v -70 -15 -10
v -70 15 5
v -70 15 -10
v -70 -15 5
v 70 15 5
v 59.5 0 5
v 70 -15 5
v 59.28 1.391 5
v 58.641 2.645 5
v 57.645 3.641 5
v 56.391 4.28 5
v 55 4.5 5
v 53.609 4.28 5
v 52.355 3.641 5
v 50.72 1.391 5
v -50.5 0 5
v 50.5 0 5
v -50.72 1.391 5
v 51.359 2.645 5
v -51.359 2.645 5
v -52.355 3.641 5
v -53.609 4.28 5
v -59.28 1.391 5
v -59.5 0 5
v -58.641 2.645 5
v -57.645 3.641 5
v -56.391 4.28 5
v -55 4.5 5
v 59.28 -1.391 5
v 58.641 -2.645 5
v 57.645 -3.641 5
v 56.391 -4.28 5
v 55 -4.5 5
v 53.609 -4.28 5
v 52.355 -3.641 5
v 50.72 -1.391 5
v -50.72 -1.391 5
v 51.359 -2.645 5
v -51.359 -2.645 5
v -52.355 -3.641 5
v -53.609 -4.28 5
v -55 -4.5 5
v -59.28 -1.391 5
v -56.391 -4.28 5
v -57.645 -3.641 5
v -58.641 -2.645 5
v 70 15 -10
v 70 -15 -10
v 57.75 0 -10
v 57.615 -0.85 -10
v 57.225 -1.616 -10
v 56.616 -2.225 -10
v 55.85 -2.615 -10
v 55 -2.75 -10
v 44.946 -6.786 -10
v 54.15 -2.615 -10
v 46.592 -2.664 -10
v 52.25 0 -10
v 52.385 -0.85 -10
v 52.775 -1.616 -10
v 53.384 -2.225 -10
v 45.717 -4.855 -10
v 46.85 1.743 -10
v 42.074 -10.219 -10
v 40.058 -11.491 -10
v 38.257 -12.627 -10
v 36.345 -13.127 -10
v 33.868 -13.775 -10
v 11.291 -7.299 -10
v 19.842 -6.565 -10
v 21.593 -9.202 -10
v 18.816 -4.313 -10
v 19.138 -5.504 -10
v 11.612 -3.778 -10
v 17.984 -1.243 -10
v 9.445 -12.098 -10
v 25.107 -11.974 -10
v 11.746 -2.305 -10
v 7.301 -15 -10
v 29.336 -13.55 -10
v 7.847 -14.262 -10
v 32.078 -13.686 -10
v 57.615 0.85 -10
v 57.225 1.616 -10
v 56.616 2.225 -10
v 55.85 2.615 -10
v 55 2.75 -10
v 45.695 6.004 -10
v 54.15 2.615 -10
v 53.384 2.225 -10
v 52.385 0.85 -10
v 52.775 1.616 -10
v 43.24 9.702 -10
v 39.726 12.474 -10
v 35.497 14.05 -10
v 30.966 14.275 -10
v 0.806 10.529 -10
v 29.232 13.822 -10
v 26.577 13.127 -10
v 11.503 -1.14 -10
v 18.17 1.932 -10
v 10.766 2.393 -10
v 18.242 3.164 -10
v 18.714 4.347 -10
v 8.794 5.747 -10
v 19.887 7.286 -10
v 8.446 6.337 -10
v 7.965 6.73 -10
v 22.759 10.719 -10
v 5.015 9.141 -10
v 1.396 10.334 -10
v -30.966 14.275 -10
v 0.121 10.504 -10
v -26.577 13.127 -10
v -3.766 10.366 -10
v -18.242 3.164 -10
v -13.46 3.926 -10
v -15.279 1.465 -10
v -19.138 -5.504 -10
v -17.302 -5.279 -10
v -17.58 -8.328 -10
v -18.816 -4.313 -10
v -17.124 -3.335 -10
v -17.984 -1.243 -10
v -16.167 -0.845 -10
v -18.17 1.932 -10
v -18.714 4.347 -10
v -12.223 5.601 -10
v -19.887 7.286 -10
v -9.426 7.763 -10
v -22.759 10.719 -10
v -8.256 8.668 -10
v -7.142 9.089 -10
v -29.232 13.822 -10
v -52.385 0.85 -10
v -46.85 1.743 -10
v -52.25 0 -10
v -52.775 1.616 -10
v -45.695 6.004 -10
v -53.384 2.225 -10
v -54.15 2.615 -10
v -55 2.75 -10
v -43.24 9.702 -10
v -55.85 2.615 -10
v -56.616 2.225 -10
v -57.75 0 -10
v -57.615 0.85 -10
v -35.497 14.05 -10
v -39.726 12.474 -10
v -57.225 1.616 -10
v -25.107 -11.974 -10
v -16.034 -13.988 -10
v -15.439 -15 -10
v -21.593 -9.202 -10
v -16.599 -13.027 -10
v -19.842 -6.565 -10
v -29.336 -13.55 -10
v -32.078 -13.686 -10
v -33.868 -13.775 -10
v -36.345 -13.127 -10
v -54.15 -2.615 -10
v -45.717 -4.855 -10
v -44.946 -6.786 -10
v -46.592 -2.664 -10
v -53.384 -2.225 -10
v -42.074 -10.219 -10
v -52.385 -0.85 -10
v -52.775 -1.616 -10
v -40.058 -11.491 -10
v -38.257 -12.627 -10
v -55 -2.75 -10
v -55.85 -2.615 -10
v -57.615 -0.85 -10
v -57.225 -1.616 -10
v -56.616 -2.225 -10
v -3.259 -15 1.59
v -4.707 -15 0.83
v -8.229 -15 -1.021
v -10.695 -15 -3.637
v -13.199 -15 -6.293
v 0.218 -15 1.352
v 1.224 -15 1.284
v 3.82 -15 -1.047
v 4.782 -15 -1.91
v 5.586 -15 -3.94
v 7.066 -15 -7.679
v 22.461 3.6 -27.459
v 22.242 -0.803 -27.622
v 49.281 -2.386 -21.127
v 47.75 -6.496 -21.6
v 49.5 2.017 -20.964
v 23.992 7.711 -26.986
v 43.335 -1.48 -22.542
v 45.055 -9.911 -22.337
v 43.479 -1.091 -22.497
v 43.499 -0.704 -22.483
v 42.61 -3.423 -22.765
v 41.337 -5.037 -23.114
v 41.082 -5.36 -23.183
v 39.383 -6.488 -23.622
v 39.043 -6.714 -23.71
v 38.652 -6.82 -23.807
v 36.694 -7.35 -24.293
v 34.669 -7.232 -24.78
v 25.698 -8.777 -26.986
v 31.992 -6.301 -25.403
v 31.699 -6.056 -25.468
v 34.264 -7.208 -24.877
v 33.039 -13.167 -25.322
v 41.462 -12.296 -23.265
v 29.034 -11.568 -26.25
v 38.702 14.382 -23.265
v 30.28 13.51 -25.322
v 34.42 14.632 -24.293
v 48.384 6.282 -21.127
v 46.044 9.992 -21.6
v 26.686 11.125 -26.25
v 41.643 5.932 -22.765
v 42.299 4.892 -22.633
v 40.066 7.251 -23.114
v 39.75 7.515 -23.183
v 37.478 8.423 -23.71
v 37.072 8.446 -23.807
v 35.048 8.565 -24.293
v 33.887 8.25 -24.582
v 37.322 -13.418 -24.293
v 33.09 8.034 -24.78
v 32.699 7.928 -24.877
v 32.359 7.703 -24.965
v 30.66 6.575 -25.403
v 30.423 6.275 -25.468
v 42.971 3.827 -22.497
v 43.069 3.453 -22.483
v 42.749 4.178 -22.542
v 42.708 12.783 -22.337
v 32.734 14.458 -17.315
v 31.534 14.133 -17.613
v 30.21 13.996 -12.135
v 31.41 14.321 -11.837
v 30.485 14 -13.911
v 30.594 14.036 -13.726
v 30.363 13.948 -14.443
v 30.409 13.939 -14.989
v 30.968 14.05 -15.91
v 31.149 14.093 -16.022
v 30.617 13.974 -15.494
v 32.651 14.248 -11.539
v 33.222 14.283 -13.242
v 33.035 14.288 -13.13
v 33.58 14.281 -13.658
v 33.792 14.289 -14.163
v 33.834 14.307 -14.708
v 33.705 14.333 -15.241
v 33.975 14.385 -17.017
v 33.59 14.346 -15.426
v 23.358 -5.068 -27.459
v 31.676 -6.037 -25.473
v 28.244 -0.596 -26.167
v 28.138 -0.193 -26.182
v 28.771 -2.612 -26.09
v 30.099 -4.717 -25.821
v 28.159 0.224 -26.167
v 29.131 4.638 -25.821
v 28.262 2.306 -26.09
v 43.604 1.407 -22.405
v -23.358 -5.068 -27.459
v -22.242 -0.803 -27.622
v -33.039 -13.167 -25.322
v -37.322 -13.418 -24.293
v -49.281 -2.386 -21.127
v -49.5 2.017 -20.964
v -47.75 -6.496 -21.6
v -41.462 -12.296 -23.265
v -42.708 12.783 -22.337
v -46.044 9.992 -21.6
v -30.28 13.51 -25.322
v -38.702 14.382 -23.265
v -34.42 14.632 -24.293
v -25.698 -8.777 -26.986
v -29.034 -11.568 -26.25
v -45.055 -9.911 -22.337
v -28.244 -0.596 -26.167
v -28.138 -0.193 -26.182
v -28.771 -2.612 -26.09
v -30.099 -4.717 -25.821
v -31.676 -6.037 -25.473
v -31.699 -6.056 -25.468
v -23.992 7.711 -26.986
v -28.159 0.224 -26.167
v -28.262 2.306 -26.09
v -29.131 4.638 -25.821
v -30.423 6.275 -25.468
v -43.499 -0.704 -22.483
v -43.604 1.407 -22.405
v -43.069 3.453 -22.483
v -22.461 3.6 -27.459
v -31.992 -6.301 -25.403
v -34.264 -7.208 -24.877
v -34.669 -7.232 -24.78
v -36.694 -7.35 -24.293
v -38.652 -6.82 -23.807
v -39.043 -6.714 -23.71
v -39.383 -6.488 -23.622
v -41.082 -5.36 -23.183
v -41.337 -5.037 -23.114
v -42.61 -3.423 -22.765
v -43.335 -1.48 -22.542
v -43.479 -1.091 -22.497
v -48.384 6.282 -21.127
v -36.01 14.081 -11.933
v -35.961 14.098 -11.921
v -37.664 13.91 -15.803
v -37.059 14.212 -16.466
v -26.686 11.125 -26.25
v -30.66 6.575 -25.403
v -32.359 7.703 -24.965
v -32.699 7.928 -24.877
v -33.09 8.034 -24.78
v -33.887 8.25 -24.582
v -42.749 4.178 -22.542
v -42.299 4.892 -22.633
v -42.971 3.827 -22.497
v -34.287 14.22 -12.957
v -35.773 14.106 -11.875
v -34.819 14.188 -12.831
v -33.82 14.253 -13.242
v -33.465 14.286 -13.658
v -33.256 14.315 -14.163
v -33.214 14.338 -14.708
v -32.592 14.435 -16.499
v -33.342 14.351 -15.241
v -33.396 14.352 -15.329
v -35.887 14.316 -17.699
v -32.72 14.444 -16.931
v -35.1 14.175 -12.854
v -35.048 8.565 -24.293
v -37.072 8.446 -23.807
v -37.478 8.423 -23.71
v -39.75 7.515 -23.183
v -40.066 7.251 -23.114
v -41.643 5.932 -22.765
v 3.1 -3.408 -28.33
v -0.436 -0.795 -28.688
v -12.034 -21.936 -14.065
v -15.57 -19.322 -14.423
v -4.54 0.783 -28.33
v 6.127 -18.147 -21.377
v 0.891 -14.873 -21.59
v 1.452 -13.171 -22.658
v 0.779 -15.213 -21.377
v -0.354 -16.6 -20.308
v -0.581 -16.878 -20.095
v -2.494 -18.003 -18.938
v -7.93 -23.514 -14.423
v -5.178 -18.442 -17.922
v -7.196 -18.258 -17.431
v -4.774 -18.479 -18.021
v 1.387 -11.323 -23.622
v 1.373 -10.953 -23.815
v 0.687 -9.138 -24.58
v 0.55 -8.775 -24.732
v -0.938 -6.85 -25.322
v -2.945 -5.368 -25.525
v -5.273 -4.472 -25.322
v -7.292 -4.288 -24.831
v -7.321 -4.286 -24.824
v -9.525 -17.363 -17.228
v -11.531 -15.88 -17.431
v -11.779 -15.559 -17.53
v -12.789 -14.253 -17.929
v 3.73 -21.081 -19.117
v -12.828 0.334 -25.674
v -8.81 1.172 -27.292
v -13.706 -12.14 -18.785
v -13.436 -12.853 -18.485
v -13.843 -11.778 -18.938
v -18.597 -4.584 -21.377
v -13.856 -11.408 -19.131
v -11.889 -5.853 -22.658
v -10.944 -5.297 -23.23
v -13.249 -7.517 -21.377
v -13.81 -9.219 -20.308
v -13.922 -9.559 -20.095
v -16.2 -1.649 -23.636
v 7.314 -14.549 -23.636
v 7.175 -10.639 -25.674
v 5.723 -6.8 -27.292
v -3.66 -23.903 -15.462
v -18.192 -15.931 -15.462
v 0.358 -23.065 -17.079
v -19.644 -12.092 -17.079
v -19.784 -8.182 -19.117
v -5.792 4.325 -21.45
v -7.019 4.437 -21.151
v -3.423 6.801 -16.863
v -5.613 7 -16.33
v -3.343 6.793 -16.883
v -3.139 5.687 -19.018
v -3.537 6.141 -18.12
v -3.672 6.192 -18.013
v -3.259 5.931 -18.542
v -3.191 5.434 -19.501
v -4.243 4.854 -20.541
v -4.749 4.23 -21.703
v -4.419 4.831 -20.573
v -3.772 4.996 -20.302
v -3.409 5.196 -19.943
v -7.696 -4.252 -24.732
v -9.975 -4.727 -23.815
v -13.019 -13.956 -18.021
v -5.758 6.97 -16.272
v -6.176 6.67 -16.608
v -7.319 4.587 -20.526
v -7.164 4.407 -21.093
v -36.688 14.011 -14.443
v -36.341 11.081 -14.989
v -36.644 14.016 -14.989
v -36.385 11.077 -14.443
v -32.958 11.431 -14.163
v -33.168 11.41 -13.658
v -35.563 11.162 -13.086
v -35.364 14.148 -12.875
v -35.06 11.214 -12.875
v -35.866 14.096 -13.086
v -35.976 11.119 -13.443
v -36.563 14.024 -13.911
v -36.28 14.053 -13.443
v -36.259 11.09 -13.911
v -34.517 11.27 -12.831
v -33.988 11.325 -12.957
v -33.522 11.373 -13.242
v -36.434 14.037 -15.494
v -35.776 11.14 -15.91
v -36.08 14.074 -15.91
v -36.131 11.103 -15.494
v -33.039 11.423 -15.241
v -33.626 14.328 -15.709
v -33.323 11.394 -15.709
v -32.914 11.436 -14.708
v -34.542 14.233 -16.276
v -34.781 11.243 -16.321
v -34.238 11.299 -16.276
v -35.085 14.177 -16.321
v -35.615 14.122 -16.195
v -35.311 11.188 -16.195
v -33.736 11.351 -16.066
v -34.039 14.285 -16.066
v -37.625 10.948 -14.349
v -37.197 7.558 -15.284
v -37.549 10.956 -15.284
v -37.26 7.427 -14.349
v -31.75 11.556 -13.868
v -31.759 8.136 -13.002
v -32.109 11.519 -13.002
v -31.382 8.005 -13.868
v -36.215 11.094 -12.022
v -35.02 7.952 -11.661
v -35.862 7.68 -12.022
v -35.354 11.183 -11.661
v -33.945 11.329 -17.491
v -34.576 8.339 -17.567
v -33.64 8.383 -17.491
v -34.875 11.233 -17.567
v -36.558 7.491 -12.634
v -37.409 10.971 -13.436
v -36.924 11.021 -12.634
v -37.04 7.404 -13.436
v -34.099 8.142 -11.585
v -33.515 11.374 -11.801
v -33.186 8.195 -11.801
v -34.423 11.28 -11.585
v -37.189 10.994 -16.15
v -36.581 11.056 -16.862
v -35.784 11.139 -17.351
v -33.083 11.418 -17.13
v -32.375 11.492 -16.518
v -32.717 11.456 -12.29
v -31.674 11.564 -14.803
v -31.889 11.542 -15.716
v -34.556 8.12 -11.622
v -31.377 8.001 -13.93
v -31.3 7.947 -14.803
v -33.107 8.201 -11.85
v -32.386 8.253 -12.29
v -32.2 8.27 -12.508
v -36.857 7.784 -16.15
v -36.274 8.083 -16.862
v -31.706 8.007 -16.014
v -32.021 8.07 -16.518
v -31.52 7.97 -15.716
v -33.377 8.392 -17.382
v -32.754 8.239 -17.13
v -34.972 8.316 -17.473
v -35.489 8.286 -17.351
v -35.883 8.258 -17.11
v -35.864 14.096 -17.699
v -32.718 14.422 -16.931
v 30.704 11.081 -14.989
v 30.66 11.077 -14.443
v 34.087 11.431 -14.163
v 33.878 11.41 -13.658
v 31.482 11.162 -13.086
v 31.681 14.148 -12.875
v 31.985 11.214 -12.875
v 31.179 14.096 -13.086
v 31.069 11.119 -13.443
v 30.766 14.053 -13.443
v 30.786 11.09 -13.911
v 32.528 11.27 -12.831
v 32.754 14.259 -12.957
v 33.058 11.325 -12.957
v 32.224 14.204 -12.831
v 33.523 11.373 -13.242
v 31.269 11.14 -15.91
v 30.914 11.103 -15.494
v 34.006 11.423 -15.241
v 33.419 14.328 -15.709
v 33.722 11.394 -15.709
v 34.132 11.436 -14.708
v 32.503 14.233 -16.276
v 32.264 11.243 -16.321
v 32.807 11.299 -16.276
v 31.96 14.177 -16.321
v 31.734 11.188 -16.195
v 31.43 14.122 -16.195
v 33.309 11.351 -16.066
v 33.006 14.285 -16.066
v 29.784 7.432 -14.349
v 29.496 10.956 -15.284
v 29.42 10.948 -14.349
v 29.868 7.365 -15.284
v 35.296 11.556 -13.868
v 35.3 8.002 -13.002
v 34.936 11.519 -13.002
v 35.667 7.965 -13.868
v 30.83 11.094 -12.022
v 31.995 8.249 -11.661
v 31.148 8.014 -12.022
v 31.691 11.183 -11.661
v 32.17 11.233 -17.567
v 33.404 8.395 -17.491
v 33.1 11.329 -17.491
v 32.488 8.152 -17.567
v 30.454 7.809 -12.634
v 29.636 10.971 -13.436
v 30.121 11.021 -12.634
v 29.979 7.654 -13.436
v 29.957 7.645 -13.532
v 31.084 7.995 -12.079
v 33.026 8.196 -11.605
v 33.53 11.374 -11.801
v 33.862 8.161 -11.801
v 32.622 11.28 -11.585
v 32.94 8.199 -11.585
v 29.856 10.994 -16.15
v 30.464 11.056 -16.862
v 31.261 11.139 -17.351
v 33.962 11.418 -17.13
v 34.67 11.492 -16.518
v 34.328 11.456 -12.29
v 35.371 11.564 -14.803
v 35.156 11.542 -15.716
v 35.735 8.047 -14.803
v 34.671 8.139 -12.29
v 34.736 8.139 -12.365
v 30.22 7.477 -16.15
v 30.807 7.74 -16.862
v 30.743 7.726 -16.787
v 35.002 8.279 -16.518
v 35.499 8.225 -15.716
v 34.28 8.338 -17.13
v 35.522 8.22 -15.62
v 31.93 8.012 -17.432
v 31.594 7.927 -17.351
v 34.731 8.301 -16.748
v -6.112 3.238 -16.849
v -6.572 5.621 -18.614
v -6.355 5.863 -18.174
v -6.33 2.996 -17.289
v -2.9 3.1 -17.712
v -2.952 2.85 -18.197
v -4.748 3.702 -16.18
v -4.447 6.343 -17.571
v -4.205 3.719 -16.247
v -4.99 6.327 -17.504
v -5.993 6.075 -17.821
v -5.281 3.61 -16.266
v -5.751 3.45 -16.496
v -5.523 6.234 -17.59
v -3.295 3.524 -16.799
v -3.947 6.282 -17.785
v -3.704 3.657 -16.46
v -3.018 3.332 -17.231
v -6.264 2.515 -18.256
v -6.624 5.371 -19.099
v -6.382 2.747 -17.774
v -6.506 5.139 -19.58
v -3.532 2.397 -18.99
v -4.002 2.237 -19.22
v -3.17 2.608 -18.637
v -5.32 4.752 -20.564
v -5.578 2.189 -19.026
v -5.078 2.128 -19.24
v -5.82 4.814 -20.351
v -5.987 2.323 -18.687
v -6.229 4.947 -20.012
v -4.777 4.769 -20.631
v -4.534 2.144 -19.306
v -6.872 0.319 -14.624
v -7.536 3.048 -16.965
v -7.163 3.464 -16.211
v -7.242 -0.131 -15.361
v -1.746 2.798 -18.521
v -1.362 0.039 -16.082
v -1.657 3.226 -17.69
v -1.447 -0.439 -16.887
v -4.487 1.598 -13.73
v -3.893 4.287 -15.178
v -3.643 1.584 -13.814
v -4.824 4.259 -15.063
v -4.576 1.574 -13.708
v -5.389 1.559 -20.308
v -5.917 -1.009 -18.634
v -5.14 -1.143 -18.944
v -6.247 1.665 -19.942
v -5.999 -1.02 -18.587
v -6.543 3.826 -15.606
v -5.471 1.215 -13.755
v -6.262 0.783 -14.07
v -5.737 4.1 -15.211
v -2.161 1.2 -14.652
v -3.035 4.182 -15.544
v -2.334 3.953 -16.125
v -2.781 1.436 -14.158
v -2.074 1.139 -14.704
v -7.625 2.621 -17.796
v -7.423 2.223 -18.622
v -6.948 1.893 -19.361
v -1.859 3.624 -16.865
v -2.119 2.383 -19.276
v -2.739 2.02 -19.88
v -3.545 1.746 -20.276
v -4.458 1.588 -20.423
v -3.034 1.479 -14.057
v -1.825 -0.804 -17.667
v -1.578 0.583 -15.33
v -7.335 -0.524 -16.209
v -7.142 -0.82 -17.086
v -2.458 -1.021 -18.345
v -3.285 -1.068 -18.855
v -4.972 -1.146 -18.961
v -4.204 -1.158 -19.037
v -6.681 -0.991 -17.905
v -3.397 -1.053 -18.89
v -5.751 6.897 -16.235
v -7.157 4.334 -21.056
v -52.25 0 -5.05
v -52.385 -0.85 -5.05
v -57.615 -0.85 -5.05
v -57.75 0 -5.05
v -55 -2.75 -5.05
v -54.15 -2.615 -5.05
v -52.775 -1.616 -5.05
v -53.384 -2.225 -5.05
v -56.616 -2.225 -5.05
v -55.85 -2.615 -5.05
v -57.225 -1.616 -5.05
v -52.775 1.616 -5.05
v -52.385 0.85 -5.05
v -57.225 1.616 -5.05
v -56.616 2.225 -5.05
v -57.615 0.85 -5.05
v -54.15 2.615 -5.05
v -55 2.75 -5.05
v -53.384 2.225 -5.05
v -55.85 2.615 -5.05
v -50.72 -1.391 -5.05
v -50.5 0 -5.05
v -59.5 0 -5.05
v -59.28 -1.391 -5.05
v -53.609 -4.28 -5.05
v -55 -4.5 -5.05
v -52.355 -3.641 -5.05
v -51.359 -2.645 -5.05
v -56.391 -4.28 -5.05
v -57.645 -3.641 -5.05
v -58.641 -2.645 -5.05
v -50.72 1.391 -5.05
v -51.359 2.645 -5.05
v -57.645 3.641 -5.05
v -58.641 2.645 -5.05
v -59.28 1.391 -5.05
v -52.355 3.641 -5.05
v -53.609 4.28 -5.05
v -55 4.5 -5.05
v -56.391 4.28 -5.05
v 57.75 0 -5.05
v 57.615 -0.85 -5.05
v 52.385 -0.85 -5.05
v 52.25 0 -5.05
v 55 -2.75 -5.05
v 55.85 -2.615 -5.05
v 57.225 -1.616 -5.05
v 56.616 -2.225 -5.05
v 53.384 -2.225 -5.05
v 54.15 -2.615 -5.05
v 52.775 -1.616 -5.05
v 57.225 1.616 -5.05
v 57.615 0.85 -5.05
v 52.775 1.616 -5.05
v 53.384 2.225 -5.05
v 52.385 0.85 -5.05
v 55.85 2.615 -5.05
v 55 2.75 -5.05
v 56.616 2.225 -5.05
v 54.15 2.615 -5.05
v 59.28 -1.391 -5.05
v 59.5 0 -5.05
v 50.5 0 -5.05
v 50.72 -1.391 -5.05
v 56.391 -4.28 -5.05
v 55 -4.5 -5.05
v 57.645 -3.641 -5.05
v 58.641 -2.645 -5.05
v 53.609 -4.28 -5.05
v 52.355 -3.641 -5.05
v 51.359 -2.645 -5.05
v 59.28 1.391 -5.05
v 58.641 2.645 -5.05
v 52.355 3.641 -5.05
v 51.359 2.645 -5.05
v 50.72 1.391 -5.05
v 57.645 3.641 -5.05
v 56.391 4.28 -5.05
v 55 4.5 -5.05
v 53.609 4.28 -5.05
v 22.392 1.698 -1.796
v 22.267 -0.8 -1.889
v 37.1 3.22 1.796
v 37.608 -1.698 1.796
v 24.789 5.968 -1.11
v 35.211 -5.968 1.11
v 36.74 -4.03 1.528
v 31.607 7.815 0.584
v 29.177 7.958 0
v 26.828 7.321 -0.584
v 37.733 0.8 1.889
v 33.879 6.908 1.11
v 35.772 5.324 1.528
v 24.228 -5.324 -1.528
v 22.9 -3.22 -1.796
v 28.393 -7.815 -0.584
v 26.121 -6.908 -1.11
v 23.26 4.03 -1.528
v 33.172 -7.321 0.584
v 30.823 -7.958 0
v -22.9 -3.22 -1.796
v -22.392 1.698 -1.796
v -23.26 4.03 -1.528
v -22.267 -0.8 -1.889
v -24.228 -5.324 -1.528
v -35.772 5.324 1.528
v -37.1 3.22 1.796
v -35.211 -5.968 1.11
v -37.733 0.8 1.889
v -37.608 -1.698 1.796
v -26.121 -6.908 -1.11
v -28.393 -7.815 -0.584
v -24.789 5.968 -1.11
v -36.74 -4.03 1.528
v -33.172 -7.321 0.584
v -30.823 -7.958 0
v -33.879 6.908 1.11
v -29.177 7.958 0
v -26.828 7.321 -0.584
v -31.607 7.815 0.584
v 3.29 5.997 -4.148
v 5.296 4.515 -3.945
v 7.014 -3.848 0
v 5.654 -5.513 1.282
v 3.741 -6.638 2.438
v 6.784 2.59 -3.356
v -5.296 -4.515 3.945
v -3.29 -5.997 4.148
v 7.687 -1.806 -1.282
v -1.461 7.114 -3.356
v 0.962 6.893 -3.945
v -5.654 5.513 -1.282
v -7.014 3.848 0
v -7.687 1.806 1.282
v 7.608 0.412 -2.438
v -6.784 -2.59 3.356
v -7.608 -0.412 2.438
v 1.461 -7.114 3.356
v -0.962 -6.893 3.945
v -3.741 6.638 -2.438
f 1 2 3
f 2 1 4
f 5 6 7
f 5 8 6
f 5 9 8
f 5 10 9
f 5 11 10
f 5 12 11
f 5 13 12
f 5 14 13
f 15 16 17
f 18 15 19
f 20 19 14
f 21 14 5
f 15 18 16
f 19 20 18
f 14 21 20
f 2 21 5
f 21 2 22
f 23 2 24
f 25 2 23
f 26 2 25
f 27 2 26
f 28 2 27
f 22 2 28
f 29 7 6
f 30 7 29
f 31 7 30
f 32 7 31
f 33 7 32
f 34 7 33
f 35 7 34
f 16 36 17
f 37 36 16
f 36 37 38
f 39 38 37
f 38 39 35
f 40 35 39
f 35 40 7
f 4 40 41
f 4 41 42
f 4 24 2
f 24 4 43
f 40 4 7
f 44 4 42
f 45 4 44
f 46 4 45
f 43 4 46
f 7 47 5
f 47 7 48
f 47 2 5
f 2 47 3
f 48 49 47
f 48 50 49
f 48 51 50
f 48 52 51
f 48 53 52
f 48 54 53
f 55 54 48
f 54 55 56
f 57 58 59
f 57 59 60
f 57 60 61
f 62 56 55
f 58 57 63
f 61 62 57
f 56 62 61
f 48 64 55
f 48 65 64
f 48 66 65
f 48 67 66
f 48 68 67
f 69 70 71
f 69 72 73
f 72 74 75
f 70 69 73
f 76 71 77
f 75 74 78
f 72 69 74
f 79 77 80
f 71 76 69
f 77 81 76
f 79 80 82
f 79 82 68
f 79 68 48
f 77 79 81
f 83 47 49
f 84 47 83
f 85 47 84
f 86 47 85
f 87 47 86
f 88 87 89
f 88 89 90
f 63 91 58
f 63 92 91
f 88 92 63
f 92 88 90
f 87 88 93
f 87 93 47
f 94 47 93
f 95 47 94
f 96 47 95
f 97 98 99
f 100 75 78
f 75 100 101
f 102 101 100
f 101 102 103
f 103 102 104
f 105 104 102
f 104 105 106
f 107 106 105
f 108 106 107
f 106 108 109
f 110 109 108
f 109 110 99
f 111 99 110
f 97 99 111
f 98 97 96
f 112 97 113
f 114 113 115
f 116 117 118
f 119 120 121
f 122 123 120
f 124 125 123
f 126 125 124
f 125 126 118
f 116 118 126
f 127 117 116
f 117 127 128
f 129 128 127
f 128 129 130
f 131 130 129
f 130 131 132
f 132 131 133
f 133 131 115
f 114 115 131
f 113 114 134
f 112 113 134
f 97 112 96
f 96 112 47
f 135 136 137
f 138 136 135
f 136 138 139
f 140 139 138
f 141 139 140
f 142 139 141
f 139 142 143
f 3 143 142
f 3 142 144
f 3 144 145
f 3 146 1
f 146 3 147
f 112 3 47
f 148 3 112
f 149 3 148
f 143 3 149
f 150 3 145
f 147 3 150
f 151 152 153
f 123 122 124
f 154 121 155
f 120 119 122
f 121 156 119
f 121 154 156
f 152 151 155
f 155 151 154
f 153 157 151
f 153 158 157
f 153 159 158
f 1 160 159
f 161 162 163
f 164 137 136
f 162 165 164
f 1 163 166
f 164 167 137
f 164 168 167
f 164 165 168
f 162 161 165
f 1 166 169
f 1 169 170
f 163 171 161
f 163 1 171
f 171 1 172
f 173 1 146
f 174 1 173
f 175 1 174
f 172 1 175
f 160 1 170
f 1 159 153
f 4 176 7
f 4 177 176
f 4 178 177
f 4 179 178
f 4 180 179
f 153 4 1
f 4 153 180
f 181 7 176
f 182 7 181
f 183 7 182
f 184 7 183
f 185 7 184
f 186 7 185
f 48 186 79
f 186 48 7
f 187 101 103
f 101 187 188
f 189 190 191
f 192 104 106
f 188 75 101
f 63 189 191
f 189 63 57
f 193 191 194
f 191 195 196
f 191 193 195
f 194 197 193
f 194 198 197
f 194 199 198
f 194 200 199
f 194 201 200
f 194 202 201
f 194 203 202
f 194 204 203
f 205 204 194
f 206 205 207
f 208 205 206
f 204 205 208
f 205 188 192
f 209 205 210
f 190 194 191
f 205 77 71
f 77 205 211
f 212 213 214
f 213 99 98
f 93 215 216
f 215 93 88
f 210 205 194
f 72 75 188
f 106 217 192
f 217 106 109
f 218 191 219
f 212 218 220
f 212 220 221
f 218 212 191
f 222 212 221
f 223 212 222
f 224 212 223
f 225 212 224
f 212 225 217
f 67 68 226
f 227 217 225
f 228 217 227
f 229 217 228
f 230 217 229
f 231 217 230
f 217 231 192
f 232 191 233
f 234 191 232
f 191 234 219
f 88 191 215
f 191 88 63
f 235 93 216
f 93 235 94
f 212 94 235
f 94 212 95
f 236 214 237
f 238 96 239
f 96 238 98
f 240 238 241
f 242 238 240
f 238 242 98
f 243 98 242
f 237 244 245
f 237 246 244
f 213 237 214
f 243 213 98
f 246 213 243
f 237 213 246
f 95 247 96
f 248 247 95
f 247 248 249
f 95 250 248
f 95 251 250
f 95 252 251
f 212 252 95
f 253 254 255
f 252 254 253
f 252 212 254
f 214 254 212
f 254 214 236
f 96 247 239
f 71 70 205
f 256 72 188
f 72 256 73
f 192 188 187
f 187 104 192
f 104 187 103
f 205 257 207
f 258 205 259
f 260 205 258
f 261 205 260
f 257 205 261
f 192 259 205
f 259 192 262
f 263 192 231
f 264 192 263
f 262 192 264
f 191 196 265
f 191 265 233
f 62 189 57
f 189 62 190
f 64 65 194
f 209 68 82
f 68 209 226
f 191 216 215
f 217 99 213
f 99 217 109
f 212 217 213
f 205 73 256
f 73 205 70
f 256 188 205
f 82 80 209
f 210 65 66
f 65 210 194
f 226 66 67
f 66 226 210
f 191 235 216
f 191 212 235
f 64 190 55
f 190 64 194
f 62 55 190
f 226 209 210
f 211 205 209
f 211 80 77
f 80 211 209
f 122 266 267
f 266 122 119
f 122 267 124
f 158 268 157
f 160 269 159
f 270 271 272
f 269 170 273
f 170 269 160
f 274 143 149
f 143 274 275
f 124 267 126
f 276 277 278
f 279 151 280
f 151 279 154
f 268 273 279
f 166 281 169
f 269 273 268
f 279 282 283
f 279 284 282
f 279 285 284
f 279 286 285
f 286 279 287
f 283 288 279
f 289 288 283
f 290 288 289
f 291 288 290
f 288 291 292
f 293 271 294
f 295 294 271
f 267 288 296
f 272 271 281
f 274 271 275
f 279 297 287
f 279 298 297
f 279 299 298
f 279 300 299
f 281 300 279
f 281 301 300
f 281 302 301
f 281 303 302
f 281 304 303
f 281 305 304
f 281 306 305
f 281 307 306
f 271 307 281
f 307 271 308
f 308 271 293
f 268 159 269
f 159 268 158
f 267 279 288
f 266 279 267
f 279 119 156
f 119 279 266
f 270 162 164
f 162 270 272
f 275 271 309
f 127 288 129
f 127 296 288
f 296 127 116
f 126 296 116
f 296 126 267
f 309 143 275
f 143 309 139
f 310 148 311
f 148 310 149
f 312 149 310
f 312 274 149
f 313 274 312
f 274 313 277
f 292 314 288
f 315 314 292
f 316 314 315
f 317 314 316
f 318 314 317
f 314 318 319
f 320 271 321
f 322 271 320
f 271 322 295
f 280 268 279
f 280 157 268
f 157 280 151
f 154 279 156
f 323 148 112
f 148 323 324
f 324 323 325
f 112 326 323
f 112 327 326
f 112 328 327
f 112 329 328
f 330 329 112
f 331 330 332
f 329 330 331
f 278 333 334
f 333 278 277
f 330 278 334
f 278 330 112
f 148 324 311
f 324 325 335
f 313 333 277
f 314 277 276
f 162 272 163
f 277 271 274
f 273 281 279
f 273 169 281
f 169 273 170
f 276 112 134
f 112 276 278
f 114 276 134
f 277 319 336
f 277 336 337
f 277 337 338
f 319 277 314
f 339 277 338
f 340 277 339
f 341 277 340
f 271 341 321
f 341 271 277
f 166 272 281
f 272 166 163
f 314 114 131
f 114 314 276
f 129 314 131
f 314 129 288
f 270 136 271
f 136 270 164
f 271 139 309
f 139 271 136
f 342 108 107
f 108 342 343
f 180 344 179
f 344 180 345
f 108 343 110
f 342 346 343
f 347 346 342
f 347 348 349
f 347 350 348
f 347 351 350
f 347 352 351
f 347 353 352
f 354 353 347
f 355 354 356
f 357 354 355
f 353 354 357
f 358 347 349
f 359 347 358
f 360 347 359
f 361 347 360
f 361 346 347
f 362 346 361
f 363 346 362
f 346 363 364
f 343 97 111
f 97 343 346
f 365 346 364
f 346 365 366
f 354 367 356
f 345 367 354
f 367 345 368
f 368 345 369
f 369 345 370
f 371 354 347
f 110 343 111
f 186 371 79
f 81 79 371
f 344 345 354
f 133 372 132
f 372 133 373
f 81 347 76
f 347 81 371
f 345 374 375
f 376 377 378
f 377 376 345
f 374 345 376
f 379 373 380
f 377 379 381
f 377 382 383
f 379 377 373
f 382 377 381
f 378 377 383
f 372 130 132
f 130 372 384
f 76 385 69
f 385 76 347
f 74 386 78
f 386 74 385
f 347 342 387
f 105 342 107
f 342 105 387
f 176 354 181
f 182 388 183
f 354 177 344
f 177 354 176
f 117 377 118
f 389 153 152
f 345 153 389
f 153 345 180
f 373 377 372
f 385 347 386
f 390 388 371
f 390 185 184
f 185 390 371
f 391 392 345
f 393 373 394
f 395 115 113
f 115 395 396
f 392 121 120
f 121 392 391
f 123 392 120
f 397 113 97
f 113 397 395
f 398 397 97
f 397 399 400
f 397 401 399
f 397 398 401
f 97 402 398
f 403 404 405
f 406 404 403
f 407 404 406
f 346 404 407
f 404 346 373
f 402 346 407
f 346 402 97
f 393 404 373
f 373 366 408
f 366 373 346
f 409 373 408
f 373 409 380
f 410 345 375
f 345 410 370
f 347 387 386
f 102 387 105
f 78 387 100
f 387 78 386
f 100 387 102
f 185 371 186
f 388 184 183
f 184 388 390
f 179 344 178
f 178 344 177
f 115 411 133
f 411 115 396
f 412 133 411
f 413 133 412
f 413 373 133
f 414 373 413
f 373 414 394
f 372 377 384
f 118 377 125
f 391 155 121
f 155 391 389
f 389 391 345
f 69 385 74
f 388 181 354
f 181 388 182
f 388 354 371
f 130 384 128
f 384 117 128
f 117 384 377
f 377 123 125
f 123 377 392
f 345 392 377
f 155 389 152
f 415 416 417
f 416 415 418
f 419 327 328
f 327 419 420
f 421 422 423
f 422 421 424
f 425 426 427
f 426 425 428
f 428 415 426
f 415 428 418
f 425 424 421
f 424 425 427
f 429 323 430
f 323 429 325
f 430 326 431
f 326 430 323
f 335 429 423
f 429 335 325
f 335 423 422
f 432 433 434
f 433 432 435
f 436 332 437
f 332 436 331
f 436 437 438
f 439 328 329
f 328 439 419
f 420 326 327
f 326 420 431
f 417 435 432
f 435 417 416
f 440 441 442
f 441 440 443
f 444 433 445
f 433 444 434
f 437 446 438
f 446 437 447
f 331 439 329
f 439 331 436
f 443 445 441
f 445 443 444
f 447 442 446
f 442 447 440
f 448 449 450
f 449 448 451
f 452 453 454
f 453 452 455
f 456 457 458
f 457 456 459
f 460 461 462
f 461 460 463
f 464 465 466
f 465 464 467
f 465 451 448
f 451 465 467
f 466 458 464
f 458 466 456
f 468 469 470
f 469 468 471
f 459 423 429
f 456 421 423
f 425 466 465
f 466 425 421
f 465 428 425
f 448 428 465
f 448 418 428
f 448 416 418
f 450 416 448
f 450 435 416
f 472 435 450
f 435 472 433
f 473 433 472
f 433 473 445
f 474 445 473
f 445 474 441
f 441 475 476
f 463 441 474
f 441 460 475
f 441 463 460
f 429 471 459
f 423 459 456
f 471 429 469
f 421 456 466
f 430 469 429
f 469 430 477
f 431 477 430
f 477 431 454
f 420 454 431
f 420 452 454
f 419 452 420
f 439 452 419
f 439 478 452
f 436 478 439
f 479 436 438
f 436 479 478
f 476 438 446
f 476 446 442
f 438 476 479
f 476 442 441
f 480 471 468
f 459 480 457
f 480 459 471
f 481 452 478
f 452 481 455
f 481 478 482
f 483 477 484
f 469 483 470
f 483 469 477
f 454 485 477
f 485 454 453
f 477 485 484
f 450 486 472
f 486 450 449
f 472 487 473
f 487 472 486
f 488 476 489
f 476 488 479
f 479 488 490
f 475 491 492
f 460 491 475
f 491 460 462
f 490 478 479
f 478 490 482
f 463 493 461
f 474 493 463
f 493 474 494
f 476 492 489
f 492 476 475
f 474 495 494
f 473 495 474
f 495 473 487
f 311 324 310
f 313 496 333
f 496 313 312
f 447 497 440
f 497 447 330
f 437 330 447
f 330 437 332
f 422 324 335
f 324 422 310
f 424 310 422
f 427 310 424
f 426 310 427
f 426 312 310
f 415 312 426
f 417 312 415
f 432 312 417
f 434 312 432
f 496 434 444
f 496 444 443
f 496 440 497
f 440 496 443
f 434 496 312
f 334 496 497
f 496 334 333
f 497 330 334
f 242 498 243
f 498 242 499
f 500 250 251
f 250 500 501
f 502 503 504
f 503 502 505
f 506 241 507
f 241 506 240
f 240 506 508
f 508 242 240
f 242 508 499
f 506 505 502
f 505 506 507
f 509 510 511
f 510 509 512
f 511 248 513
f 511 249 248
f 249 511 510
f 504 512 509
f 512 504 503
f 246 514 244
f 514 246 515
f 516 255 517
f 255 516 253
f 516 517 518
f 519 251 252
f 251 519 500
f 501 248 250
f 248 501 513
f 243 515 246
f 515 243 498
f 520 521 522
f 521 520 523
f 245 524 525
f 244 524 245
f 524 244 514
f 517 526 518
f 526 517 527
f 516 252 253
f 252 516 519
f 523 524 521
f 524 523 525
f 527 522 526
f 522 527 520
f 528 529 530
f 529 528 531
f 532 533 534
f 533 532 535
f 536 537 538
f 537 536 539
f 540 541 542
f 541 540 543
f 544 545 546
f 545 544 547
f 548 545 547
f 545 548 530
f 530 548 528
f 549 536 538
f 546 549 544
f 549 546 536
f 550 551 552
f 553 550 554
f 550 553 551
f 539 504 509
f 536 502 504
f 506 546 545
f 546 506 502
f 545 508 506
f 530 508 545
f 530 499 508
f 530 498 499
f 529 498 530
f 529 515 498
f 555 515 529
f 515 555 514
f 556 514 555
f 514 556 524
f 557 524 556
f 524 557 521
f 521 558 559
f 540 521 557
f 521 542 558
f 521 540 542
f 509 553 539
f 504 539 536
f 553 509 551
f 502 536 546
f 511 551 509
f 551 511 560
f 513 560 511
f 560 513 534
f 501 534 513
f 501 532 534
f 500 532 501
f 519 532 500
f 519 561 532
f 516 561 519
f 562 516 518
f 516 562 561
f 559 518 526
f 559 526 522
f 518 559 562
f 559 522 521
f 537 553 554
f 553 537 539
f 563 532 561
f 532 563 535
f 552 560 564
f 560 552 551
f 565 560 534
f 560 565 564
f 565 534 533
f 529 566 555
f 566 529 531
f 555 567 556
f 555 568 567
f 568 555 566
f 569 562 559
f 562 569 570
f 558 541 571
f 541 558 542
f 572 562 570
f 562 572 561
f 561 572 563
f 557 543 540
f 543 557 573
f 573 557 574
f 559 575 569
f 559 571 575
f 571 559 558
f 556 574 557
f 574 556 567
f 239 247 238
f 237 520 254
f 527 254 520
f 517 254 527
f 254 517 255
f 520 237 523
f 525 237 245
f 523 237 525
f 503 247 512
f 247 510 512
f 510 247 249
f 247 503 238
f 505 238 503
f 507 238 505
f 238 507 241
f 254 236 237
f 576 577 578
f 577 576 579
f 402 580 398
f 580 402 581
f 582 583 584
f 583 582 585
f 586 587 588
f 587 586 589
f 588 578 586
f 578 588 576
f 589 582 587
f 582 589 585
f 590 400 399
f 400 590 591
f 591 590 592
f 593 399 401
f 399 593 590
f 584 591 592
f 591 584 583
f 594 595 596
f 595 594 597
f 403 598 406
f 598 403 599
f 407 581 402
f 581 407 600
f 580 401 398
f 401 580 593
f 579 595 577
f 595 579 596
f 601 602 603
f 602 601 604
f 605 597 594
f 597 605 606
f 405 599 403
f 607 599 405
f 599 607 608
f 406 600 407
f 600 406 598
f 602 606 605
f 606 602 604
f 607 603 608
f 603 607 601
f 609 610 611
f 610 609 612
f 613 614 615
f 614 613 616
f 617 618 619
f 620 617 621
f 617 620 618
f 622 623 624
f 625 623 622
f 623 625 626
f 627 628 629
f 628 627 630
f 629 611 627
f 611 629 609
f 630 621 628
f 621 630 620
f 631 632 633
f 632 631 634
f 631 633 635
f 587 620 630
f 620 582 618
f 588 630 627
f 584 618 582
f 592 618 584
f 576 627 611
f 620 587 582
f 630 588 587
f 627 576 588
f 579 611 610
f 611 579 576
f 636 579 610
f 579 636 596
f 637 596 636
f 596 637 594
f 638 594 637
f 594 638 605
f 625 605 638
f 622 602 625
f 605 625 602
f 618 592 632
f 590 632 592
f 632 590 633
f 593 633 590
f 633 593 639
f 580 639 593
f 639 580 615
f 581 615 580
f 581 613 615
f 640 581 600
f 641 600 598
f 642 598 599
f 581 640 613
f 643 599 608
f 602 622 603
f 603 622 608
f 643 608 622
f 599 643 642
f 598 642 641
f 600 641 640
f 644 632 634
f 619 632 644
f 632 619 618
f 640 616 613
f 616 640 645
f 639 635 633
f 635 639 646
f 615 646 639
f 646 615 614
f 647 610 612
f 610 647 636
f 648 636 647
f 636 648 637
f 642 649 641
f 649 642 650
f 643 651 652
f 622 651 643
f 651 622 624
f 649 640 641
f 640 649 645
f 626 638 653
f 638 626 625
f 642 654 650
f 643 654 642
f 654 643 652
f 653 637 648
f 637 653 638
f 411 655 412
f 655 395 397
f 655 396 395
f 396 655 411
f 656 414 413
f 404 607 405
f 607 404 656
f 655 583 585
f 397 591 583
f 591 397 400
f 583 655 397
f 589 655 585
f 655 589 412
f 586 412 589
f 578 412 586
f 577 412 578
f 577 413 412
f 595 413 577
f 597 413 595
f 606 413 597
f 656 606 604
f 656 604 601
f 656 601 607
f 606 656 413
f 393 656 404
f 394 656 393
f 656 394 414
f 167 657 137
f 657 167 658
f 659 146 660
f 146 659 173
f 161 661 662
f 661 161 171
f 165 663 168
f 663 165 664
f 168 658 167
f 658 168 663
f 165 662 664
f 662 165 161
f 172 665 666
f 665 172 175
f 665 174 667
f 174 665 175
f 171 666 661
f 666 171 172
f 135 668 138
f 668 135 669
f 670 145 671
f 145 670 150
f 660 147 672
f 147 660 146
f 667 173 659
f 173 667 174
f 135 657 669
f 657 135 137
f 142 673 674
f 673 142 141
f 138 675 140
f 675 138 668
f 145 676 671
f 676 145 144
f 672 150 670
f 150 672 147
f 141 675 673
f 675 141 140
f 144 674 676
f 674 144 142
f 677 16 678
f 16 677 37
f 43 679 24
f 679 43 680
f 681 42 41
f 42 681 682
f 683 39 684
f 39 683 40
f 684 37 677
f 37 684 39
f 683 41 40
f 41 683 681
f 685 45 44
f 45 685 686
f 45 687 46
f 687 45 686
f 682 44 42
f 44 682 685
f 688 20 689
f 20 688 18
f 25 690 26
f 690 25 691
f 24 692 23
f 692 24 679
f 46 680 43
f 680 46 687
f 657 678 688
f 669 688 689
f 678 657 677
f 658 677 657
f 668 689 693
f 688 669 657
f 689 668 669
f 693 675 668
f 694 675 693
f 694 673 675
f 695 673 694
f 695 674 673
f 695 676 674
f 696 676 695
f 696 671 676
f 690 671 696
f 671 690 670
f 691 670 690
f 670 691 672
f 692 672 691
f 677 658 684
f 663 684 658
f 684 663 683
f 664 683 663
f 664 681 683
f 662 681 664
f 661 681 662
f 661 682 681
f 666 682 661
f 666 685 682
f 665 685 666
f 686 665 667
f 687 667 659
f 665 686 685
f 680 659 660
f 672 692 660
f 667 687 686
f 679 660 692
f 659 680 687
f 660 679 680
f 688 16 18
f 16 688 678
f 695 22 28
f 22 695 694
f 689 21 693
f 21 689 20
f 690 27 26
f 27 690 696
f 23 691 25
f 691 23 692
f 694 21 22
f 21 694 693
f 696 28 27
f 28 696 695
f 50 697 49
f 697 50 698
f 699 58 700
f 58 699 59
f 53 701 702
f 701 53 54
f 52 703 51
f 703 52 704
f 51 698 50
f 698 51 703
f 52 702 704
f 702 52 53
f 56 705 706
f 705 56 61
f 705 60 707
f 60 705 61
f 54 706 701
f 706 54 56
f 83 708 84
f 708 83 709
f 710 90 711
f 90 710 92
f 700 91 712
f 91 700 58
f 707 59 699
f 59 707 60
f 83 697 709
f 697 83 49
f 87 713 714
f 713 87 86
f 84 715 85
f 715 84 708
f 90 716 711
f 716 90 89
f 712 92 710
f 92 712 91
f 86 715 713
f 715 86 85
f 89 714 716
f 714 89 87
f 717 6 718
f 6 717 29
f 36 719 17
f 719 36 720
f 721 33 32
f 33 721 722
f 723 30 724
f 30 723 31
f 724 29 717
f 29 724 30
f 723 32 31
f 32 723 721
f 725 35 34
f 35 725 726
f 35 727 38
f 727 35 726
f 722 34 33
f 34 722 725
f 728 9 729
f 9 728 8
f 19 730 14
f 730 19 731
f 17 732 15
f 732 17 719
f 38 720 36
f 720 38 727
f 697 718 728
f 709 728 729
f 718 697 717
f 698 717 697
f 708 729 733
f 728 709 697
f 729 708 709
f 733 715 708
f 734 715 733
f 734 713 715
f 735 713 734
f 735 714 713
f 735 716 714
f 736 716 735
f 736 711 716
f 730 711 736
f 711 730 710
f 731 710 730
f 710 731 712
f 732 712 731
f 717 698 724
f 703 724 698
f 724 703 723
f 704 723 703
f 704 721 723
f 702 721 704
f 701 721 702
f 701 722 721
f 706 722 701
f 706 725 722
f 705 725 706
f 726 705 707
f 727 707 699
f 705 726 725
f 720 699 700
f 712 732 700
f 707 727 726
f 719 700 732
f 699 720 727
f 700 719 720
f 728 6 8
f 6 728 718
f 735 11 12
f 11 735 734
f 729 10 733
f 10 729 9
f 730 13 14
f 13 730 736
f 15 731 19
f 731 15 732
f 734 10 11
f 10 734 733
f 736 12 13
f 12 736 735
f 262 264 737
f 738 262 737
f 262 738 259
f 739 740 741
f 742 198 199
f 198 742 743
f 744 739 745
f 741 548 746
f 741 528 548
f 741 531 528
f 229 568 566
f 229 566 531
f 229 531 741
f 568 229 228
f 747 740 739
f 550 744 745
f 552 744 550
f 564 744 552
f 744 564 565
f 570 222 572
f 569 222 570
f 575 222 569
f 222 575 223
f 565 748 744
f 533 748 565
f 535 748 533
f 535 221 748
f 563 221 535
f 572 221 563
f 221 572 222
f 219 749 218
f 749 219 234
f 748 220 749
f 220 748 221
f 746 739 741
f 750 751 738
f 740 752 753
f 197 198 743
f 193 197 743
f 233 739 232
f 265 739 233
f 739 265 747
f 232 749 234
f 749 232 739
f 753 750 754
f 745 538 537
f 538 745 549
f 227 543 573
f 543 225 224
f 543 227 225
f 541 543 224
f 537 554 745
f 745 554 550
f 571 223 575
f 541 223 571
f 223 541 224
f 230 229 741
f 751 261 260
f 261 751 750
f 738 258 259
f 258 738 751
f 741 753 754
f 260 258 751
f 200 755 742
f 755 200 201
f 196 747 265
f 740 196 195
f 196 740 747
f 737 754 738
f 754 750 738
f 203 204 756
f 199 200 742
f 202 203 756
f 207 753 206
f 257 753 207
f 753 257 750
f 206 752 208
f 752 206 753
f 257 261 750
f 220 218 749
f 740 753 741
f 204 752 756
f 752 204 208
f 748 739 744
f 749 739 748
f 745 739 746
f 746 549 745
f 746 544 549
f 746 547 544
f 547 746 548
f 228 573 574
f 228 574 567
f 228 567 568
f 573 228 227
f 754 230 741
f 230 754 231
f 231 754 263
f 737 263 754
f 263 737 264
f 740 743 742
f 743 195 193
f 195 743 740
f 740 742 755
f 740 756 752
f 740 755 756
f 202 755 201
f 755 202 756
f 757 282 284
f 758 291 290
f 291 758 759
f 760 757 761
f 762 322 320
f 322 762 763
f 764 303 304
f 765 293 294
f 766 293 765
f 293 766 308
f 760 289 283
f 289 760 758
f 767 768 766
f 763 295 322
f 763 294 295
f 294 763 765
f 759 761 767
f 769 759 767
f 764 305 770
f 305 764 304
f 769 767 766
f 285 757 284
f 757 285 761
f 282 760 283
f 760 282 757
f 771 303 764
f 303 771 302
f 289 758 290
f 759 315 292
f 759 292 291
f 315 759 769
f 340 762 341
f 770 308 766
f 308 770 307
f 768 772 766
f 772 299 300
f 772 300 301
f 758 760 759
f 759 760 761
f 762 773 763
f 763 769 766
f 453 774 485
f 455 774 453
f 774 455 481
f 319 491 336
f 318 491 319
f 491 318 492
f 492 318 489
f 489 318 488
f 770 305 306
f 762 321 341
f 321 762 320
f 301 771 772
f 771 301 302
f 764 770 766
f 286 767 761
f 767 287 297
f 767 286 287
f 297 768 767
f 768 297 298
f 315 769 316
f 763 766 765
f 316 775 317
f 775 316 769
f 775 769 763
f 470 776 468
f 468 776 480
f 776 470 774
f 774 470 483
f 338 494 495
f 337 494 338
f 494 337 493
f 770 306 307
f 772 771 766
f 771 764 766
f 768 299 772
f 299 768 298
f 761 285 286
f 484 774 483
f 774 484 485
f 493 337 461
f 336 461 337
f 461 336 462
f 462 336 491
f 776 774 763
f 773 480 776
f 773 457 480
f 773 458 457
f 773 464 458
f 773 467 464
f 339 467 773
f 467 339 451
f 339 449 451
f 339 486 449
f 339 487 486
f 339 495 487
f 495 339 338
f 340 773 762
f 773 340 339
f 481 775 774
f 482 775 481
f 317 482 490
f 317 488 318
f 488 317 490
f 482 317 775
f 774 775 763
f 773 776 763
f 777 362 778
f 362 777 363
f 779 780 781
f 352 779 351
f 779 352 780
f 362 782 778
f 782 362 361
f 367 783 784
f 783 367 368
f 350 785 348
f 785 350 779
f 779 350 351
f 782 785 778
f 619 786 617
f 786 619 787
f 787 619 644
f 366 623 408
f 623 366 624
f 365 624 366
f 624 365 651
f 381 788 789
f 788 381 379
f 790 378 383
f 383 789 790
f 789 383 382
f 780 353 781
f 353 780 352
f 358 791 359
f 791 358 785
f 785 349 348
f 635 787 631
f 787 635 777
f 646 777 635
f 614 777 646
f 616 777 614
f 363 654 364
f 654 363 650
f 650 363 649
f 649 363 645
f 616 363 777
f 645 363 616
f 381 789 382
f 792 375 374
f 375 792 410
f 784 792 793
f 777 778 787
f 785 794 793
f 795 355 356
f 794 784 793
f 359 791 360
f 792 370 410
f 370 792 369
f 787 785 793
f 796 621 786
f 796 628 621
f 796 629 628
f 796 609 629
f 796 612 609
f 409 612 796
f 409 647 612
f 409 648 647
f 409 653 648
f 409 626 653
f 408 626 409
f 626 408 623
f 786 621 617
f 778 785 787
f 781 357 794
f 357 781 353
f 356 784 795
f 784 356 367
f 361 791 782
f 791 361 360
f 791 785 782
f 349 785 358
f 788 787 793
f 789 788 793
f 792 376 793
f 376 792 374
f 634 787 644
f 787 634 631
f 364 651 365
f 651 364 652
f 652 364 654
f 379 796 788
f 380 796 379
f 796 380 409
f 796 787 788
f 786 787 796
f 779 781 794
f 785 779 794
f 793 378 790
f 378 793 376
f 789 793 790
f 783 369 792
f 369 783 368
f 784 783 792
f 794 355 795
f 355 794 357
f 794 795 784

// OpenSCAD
intersection() {
	difference() {
		union() {
			translate(v = [-70.0000000000, -15, -10]) {
				cube(size = [140, 30, 15]);
			}
			translate(v = [30, 0, 0]) {
				rotate(a = [0, 166.3442145528, 5.9061411138]) {
					translate(v = [0, 0, 0]) {
						cylinder($fn = 20, d = 28.2000000000, h = 25);
					}
				}
			}
			translate(v = [-30, 0, 0]) {
				rotate(a = [0, 166.3442145528, 174.0938588862]) {
					translate(v = [0, 0, 0]) {
						cylinder($fn = 20, d = 28.2000000000, h = 25);
					}
				}
			}
			translate(v = [0, 0, 0]) {
				rotate(a = [0, 148.7667581290, -118.7487032175]) {
					translate(v = [0, 0, 0]) {
						cylinder($fn = 20, d = 28.2000000000, h = 25);
					}
				}
			}
		}
		translate(v = [30, 0, 0]) {
			rotate(a = [0, 166.3442145528, 5.9061411138]) {
				translate(v = [0, 0, 0]) {
					cylinder($fn = 20, d = 16, h = 30);
				}
			}
		}
		translate(v = [-30, 0, 0]) {
			rotate(a = [0, 166.3442145528, 174.0938588862]) {
				translate(v = [0, 0, 0]) {
					cylinder($fn = 20, d = 16, h = 30);
				}
			}
		}
		translate(v = [0, 0, 0]) {
			rotate(a = [0, 148.7667581290, -118.7487032175]) {
				translate(v = [0, 0, 0]) {
					cylinder($fn = 20, d = 16, h = 30);
				}
			}
		}
		translate(v = [-33.52252704,  0.36439935,-14.57597394]) {
			rotate(a = [ 90.        ,166.34421455,  5.90614111]) {
				translate(v = [0, 0, -10.9000000000]) {
					rotate(a = [180, 0, 0]) {
						union() {
							translate(v = [0, 0, false]) {
								cylinder($fn = 20, d = 3.5000000000, h = 38.2000000000);
							}
							translate(v = [0, 0, -13.1500000000]) {
								cylinder($fn = 20, d = 6.0000000000, h = 13.2000000000);
							}
							translate(v = [0, 0, 3.0000000000]) {
								cylinder($fn = 6, d = 6.5100000000, h = 25);
							}
						}
					}
				}
			}
		}
		translate(v = [ 33.52252704,  0.36439935,-14.57597394]) {
			rotate(a = [ 90.        ,166.34421455,  5.90614111]) {
				translate(v = [0, 0, -10.9000000000]) {
					rotate(a = [180, 0, 0]) {
						union() {
							translate(v = [0, 0, false]) {
								cylinder($fn = 20, d = 3.5000000000, h = 38.2000000000);
							}
							translate(v = [0, 0, -13.1500000000]) {
								cylinder($fn = 20, d = 6.0000000000, h = 13.2000000000);
							}
							translate(v = [0, 0, 3.0000000000]) {
								cylinder($fn = 6, d = 6.5100000000, h = 25);
							}
						}
					}
				}
			}
		}
		translate(v = [ -3.74090311, -6.81913195,-12.82595351]) {
			rotate(a = [  90.        , 148.76675813,-118.74870322]) {
				rotate(a = [0, -120, 0]) {
					translate(v = [0, 0, -10.9000000000]) {
						rotate(a = [180, 0, 0]) {
							union() {
								translate(v = [0, 0, false]) {
									cylinder($fn = 20, d = 3.5000000000, h = 38.2000000000);
								}
								translate(v = [0, 0, -13.1500000000]) {
									cylinder($fn = 20, d = 6.0000000000, h = 13.2000000000);
								}
								translate(v = [0, 0, 3.0000000000]) {
									cylinder($fn = 6, d = 6.5100000000, h = 25);
								}
							}
						}
					}
				}
			}
		}
		translate(v = [-55.,  0., -5.]) {
			rotate(a = [180, 0, 0]) {
				union() {
					translate(v = [0, 0, false]) {
						cylinder($fn = 20, d = 5.5000000000, h = 25.2000000000);
					}
					translate(v = [0, 0, -15.1500000000]) {
						cylinder($fn = 20, d = 9.0000000000, h = 15.2000000000);
					}
				}
			}
		}
		translate(v = [55., 0.,-5.]) {
			rotate(a = [180, 0, 0]) {
				union() {
					translate(v = [0, 0, false]) {
						cylinder($fn = 20, d = 5.5000000000, h = 25.2000000000);
					}
					translate(v = [0, 0, -15.1500000000]) {
						cylinder($fn = 20, d = 9.0000000000, h = 15.2000000000);
					}
				}
			}
		}
	}
	translate(v = [-250, -250, -495]) {
		cube(size = 500);
	}
}
